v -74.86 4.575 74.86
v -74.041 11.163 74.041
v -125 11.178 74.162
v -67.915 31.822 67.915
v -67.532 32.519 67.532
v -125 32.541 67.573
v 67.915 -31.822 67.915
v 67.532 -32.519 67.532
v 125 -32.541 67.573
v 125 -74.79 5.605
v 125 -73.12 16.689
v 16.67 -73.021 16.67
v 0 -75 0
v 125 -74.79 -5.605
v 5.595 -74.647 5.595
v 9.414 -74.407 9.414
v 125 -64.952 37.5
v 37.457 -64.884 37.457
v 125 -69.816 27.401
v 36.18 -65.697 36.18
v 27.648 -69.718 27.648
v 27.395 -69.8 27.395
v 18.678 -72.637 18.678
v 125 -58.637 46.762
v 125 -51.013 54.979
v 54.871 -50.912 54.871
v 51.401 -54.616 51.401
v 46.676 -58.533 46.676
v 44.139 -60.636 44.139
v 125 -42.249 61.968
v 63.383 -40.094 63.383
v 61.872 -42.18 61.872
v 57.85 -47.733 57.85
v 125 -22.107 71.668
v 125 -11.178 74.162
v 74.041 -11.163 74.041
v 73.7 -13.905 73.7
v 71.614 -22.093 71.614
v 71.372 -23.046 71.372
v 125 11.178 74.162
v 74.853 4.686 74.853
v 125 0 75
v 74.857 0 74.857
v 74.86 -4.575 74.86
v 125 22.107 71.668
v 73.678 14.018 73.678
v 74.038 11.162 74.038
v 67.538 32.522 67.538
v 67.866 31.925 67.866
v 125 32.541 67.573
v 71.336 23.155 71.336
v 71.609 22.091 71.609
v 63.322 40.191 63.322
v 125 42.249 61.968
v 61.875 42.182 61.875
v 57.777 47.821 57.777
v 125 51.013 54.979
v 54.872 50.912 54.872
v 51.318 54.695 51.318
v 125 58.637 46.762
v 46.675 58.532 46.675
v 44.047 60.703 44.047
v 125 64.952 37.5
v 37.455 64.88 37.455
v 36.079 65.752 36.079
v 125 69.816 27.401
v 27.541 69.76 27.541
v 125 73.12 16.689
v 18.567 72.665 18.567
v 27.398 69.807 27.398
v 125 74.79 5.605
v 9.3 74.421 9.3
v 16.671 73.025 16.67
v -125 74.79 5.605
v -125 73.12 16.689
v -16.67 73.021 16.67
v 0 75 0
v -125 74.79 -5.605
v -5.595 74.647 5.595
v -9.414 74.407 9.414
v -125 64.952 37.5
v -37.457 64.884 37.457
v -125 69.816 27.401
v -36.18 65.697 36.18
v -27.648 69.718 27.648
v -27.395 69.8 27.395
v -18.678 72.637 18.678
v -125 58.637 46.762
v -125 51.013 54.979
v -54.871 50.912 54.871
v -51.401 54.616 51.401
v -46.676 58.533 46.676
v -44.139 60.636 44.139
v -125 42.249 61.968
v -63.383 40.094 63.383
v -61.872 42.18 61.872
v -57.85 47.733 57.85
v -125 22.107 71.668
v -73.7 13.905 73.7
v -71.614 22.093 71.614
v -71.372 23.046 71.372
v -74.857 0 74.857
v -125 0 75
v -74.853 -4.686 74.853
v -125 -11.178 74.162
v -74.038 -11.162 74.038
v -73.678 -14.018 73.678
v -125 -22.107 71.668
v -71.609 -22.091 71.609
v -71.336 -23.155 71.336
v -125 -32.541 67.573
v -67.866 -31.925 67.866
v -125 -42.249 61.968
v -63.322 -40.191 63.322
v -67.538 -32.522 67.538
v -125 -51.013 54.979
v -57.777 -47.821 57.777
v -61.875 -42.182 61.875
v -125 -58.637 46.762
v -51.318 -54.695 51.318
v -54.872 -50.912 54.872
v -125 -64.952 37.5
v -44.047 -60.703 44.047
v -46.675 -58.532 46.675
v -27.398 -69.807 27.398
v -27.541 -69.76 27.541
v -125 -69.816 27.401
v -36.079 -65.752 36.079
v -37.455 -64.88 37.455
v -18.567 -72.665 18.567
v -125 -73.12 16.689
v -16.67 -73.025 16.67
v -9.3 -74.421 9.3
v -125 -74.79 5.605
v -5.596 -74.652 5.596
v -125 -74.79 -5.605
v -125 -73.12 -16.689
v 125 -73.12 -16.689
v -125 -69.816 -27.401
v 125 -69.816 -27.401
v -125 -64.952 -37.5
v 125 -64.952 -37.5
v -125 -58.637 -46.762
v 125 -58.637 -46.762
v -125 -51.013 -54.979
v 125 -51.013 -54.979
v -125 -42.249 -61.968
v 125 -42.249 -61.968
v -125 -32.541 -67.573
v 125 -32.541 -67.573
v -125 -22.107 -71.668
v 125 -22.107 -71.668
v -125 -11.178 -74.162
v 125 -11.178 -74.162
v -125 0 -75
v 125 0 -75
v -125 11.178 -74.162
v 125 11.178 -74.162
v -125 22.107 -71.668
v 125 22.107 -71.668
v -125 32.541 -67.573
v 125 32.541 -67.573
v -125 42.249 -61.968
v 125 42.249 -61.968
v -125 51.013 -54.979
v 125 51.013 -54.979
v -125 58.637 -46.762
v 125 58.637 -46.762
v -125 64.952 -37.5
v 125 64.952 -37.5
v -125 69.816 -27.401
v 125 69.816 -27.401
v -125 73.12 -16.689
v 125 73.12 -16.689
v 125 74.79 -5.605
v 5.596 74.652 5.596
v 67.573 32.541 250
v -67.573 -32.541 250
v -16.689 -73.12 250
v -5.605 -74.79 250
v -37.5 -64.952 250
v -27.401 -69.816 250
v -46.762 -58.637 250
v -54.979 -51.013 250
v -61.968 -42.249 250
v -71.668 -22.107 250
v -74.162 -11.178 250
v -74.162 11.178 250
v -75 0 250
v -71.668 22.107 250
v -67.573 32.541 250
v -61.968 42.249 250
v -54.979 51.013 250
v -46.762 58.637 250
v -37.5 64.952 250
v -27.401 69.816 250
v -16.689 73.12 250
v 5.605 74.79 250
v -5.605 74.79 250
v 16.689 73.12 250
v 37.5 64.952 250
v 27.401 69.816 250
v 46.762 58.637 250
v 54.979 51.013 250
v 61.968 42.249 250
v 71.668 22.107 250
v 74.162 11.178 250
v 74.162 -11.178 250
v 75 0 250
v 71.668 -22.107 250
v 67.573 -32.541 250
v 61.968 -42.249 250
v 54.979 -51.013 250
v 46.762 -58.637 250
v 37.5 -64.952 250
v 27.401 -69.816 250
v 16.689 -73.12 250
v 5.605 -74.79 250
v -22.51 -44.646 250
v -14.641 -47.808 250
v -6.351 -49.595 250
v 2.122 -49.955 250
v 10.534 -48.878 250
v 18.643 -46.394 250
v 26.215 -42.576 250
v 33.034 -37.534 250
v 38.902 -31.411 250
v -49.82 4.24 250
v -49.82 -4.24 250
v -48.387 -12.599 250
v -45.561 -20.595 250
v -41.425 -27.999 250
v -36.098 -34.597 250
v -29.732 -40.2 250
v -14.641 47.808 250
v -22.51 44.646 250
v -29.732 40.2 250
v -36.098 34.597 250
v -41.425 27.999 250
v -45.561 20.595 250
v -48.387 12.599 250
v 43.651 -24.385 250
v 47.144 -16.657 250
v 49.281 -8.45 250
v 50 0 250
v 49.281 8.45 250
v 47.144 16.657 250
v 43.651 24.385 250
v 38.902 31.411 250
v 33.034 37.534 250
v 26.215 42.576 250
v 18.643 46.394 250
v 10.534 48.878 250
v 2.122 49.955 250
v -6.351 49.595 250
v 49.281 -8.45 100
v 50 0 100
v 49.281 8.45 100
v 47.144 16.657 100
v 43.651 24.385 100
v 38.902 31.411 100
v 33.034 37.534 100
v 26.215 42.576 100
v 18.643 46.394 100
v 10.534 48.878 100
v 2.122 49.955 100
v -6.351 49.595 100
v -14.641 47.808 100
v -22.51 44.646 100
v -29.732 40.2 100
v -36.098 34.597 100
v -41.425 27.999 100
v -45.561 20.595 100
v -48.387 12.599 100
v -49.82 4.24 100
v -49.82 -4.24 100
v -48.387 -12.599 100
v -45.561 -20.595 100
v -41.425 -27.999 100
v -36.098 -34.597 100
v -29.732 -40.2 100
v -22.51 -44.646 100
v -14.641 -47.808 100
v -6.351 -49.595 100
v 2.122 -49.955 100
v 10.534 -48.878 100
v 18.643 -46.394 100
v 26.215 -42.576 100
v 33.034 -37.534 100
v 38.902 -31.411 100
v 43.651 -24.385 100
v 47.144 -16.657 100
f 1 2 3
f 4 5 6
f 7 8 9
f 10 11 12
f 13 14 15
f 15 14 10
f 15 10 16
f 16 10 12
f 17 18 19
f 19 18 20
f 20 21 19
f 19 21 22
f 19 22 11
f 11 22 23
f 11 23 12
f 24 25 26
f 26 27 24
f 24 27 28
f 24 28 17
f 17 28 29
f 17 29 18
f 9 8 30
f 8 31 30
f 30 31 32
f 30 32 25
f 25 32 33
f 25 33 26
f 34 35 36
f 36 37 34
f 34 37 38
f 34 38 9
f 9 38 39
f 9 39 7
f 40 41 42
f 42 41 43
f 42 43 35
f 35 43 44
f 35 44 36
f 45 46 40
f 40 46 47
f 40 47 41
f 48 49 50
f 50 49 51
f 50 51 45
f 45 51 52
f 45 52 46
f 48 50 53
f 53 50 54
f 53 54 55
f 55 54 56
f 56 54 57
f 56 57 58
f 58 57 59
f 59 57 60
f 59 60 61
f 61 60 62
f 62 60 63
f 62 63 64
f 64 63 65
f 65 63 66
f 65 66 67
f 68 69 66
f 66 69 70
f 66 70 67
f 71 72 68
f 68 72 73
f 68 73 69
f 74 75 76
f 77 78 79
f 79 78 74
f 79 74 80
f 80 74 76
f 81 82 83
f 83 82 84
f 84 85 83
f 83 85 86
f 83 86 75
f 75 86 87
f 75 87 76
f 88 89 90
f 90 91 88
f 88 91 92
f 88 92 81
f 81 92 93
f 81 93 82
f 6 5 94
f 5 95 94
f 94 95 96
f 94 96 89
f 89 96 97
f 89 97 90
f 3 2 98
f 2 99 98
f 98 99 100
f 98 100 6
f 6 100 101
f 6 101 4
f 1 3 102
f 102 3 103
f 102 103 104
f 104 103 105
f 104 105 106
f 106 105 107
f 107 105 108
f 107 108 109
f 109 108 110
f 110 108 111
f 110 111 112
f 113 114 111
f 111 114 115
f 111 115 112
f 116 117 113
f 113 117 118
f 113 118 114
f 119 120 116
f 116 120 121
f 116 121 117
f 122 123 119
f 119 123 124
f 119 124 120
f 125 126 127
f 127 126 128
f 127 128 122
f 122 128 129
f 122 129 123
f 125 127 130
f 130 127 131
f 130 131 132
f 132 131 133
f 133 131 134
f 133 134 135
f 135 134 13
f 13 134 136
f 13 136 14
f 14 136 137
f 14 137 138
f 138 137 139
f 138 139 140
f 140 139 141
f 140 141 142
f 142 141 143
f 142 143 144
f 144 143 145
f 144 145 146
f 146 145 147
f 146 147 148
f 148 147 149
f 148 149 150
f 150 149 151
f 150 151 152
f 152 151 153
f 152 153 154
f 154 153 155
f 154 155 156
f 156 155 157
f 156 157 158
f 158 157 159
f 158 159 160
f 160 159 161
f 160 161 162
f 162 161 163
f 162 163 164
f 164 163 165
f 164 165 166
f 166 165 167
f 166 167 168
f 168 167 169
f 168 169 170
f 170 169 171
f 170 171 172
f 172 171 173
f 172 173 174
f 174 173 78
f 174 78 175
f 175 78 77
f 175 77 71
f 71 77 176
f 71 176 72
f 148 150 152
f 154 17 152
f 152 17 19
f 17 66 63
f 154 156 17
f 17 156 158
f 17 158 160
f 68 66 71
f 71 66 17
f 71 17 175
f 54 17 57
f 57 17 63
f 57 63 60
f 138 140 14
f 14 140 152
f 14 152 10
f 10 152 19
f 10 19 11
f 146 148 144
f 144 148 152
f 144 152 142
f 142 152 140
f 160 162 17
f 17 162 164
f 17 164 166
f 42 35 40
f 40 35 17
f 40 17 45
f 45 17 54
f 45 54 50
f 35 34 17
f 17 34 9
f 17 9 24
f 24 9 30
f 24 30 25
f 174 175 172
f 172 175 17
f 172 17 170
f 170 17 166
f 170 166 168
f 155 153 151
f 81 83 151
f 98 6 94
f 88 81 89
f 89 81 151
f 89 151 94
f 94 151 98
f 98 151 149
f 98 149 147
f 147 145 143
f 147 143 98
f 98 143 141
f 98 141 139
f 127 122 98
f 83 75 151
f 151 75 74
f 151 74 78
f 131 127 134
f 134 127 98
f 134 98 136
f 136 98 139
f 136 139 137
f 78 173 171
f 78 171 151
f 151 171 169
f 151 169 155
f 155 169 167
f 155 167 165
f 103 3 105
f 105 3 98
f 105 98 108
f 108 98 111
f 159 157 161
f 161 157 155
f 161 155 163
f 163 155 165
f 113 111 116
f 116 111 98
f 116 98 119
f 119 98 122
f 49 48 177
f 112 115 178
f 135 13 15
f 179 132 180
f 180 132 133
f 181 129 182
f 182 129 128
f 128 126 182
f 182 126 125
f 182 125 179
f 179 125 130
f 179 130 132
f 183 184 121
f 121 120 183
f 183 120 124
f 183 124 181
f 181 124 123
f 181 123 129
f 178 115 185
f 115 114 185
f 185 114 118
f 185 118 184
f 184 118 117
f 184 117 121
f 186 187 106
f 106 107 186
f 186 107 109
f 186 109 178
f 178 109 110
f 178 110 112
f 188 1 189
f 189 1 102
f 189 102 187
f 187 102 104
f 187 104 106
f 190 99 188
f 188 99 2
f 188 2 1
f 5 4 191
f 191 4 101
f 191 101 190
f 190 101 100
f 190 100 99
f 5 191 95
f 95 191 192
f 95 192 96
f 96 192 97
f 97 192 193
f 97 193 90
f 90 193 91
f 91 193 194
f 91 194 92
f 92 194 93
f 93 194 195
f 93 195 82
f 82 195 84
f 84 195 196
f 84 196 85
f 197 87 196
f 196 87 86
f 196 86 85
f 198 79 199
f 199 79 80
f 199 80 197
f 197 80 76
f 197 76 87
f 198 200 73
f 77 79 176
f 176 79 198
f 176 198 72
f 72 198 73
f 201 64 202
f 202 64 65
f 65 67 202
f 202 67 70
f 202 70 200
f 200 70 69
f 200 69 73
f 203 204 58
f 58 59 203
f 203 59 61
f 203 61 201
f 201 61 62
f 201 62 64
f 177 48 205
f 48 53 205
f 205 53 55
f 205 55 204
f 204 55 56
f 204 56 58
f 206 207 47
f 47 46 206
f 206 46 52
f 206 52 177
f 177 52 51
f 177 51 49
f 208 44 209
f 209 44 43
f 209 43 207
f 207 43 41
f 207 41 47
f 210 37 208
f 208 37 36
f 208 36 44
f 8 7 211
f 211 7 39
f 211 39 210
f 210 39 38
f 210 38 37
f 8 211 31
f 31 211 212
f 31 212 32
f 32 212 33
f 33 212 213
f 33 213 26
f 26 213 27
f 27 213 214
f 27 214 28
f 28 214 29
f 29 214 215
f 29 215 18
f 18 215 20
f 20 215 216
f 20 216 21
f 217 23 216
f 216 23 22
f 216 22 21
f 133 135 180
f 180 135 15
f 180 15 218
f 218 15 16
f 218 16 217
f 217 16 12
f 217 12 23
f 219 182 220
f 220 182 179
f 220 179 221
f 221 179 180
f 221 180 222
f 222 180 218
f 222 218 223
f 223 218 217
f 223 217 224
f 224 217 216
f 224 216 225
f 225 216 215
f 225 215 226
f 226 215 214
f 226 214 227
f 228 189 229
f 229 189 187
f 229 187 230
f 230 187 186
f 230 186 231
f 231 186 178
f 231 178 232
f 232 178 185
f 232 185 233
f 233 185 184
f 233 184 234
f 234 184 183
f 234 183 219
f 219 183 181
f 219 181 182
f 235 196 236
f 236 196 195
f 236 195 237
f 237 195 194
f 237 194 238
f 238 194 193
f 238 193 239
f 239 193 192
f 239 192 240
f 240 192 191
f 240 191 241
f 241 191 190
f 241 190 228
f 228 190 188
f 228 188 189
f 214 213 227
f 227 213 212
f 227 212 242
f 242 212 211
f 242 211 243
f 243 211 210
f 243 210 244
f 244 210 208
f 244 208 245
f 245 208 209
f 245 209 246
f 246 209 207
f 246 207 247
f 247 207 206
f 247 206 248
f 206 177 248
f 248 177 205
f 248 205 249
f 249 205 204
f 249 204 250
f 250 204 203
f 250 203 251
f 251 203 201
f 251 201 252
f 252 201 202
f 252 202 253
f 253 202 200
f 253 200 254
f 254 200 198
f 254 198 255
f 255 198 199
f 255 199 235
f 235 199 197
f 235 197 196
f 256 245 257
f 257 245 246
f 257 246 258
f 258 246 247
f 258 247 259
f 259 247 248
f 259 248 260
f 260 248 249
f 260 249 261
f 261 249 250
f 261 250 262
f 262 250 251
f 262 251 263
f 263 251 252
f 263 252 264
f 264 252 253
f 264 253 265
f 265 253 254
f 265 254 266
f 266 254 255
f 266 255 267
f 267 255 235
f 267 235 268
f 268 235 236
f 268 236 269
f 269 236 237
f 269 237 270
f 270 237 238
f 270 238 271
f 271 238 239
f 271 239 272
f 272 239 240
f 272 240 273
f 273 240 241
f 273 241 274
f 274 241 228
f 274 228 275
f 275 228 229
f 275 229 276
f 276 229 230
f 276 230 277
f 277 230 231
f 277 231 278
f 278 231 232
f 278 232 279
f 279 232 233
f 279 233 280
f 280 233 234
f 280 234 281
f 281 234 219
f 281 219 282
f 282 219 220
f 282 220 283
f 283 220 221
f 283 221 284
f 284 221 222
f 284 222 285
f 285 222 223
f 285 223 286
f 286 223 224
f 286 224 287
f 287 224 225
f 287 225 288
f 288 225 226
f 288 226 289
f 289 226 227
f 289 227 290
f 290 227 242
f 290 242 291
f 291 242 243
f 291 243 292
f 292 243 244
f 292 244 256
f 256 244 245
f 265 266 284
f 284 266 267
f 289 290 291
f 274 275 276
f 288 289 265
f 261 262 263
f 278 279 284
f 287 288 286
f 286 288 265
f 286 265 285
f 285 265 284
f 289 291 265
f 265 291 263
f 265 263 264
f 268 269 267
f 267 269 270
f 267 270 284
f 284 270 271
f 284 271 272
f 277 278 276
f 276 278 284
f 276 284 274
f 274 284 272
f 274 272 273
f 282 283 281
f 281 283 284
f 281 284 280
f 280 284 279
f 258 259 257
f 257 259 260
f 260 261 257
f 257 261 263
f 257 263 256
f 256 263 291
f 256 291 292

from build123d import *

# Parameters (mm, degrees)
SKETCH1_R           = 75
BOSS_EXTRUDE1_DEPTH = 125
SKETCH2_R           = 75
BOSS_EXTRUDE2_DEPTH = 250
SKETCH3_R           = 50
CUT_EXTRUDE1_DEPTH  = 150


with BuildPart() as part:
    # Sketch1 → Boss-Extrude1 (new, symmetric)
    with BuildSketch(Plane(origin=(0, 0, 0), x_dir=(0, 0, -1), z_dir=(1, 0, 0))):
        Circle(SKETCH1_R)
    extrude(amount=BOSS_EXTRUDE1_DEPTH, both=True)

    # Sketch2 → Boss-Extrude2 (add)
    with BuildSketch(Plane.XY):
        with Locations(Location((0, 0, 0), (0, 0, 90))):
            Circle(SKETCH2_R)
    extrude(amount=BOSS_EXTRUDE2_DEPTH)

    # Sketch3 → Cut-Extrude1 (cut)
    with BuildSketch(Plane.XY.offset(250)):
        Circle(SKETCH3_R)
    extrude(amount=-CUT_EXTRUDE1_DEPTH, mode=Mode.SUBTRACT)


solid = part.part
